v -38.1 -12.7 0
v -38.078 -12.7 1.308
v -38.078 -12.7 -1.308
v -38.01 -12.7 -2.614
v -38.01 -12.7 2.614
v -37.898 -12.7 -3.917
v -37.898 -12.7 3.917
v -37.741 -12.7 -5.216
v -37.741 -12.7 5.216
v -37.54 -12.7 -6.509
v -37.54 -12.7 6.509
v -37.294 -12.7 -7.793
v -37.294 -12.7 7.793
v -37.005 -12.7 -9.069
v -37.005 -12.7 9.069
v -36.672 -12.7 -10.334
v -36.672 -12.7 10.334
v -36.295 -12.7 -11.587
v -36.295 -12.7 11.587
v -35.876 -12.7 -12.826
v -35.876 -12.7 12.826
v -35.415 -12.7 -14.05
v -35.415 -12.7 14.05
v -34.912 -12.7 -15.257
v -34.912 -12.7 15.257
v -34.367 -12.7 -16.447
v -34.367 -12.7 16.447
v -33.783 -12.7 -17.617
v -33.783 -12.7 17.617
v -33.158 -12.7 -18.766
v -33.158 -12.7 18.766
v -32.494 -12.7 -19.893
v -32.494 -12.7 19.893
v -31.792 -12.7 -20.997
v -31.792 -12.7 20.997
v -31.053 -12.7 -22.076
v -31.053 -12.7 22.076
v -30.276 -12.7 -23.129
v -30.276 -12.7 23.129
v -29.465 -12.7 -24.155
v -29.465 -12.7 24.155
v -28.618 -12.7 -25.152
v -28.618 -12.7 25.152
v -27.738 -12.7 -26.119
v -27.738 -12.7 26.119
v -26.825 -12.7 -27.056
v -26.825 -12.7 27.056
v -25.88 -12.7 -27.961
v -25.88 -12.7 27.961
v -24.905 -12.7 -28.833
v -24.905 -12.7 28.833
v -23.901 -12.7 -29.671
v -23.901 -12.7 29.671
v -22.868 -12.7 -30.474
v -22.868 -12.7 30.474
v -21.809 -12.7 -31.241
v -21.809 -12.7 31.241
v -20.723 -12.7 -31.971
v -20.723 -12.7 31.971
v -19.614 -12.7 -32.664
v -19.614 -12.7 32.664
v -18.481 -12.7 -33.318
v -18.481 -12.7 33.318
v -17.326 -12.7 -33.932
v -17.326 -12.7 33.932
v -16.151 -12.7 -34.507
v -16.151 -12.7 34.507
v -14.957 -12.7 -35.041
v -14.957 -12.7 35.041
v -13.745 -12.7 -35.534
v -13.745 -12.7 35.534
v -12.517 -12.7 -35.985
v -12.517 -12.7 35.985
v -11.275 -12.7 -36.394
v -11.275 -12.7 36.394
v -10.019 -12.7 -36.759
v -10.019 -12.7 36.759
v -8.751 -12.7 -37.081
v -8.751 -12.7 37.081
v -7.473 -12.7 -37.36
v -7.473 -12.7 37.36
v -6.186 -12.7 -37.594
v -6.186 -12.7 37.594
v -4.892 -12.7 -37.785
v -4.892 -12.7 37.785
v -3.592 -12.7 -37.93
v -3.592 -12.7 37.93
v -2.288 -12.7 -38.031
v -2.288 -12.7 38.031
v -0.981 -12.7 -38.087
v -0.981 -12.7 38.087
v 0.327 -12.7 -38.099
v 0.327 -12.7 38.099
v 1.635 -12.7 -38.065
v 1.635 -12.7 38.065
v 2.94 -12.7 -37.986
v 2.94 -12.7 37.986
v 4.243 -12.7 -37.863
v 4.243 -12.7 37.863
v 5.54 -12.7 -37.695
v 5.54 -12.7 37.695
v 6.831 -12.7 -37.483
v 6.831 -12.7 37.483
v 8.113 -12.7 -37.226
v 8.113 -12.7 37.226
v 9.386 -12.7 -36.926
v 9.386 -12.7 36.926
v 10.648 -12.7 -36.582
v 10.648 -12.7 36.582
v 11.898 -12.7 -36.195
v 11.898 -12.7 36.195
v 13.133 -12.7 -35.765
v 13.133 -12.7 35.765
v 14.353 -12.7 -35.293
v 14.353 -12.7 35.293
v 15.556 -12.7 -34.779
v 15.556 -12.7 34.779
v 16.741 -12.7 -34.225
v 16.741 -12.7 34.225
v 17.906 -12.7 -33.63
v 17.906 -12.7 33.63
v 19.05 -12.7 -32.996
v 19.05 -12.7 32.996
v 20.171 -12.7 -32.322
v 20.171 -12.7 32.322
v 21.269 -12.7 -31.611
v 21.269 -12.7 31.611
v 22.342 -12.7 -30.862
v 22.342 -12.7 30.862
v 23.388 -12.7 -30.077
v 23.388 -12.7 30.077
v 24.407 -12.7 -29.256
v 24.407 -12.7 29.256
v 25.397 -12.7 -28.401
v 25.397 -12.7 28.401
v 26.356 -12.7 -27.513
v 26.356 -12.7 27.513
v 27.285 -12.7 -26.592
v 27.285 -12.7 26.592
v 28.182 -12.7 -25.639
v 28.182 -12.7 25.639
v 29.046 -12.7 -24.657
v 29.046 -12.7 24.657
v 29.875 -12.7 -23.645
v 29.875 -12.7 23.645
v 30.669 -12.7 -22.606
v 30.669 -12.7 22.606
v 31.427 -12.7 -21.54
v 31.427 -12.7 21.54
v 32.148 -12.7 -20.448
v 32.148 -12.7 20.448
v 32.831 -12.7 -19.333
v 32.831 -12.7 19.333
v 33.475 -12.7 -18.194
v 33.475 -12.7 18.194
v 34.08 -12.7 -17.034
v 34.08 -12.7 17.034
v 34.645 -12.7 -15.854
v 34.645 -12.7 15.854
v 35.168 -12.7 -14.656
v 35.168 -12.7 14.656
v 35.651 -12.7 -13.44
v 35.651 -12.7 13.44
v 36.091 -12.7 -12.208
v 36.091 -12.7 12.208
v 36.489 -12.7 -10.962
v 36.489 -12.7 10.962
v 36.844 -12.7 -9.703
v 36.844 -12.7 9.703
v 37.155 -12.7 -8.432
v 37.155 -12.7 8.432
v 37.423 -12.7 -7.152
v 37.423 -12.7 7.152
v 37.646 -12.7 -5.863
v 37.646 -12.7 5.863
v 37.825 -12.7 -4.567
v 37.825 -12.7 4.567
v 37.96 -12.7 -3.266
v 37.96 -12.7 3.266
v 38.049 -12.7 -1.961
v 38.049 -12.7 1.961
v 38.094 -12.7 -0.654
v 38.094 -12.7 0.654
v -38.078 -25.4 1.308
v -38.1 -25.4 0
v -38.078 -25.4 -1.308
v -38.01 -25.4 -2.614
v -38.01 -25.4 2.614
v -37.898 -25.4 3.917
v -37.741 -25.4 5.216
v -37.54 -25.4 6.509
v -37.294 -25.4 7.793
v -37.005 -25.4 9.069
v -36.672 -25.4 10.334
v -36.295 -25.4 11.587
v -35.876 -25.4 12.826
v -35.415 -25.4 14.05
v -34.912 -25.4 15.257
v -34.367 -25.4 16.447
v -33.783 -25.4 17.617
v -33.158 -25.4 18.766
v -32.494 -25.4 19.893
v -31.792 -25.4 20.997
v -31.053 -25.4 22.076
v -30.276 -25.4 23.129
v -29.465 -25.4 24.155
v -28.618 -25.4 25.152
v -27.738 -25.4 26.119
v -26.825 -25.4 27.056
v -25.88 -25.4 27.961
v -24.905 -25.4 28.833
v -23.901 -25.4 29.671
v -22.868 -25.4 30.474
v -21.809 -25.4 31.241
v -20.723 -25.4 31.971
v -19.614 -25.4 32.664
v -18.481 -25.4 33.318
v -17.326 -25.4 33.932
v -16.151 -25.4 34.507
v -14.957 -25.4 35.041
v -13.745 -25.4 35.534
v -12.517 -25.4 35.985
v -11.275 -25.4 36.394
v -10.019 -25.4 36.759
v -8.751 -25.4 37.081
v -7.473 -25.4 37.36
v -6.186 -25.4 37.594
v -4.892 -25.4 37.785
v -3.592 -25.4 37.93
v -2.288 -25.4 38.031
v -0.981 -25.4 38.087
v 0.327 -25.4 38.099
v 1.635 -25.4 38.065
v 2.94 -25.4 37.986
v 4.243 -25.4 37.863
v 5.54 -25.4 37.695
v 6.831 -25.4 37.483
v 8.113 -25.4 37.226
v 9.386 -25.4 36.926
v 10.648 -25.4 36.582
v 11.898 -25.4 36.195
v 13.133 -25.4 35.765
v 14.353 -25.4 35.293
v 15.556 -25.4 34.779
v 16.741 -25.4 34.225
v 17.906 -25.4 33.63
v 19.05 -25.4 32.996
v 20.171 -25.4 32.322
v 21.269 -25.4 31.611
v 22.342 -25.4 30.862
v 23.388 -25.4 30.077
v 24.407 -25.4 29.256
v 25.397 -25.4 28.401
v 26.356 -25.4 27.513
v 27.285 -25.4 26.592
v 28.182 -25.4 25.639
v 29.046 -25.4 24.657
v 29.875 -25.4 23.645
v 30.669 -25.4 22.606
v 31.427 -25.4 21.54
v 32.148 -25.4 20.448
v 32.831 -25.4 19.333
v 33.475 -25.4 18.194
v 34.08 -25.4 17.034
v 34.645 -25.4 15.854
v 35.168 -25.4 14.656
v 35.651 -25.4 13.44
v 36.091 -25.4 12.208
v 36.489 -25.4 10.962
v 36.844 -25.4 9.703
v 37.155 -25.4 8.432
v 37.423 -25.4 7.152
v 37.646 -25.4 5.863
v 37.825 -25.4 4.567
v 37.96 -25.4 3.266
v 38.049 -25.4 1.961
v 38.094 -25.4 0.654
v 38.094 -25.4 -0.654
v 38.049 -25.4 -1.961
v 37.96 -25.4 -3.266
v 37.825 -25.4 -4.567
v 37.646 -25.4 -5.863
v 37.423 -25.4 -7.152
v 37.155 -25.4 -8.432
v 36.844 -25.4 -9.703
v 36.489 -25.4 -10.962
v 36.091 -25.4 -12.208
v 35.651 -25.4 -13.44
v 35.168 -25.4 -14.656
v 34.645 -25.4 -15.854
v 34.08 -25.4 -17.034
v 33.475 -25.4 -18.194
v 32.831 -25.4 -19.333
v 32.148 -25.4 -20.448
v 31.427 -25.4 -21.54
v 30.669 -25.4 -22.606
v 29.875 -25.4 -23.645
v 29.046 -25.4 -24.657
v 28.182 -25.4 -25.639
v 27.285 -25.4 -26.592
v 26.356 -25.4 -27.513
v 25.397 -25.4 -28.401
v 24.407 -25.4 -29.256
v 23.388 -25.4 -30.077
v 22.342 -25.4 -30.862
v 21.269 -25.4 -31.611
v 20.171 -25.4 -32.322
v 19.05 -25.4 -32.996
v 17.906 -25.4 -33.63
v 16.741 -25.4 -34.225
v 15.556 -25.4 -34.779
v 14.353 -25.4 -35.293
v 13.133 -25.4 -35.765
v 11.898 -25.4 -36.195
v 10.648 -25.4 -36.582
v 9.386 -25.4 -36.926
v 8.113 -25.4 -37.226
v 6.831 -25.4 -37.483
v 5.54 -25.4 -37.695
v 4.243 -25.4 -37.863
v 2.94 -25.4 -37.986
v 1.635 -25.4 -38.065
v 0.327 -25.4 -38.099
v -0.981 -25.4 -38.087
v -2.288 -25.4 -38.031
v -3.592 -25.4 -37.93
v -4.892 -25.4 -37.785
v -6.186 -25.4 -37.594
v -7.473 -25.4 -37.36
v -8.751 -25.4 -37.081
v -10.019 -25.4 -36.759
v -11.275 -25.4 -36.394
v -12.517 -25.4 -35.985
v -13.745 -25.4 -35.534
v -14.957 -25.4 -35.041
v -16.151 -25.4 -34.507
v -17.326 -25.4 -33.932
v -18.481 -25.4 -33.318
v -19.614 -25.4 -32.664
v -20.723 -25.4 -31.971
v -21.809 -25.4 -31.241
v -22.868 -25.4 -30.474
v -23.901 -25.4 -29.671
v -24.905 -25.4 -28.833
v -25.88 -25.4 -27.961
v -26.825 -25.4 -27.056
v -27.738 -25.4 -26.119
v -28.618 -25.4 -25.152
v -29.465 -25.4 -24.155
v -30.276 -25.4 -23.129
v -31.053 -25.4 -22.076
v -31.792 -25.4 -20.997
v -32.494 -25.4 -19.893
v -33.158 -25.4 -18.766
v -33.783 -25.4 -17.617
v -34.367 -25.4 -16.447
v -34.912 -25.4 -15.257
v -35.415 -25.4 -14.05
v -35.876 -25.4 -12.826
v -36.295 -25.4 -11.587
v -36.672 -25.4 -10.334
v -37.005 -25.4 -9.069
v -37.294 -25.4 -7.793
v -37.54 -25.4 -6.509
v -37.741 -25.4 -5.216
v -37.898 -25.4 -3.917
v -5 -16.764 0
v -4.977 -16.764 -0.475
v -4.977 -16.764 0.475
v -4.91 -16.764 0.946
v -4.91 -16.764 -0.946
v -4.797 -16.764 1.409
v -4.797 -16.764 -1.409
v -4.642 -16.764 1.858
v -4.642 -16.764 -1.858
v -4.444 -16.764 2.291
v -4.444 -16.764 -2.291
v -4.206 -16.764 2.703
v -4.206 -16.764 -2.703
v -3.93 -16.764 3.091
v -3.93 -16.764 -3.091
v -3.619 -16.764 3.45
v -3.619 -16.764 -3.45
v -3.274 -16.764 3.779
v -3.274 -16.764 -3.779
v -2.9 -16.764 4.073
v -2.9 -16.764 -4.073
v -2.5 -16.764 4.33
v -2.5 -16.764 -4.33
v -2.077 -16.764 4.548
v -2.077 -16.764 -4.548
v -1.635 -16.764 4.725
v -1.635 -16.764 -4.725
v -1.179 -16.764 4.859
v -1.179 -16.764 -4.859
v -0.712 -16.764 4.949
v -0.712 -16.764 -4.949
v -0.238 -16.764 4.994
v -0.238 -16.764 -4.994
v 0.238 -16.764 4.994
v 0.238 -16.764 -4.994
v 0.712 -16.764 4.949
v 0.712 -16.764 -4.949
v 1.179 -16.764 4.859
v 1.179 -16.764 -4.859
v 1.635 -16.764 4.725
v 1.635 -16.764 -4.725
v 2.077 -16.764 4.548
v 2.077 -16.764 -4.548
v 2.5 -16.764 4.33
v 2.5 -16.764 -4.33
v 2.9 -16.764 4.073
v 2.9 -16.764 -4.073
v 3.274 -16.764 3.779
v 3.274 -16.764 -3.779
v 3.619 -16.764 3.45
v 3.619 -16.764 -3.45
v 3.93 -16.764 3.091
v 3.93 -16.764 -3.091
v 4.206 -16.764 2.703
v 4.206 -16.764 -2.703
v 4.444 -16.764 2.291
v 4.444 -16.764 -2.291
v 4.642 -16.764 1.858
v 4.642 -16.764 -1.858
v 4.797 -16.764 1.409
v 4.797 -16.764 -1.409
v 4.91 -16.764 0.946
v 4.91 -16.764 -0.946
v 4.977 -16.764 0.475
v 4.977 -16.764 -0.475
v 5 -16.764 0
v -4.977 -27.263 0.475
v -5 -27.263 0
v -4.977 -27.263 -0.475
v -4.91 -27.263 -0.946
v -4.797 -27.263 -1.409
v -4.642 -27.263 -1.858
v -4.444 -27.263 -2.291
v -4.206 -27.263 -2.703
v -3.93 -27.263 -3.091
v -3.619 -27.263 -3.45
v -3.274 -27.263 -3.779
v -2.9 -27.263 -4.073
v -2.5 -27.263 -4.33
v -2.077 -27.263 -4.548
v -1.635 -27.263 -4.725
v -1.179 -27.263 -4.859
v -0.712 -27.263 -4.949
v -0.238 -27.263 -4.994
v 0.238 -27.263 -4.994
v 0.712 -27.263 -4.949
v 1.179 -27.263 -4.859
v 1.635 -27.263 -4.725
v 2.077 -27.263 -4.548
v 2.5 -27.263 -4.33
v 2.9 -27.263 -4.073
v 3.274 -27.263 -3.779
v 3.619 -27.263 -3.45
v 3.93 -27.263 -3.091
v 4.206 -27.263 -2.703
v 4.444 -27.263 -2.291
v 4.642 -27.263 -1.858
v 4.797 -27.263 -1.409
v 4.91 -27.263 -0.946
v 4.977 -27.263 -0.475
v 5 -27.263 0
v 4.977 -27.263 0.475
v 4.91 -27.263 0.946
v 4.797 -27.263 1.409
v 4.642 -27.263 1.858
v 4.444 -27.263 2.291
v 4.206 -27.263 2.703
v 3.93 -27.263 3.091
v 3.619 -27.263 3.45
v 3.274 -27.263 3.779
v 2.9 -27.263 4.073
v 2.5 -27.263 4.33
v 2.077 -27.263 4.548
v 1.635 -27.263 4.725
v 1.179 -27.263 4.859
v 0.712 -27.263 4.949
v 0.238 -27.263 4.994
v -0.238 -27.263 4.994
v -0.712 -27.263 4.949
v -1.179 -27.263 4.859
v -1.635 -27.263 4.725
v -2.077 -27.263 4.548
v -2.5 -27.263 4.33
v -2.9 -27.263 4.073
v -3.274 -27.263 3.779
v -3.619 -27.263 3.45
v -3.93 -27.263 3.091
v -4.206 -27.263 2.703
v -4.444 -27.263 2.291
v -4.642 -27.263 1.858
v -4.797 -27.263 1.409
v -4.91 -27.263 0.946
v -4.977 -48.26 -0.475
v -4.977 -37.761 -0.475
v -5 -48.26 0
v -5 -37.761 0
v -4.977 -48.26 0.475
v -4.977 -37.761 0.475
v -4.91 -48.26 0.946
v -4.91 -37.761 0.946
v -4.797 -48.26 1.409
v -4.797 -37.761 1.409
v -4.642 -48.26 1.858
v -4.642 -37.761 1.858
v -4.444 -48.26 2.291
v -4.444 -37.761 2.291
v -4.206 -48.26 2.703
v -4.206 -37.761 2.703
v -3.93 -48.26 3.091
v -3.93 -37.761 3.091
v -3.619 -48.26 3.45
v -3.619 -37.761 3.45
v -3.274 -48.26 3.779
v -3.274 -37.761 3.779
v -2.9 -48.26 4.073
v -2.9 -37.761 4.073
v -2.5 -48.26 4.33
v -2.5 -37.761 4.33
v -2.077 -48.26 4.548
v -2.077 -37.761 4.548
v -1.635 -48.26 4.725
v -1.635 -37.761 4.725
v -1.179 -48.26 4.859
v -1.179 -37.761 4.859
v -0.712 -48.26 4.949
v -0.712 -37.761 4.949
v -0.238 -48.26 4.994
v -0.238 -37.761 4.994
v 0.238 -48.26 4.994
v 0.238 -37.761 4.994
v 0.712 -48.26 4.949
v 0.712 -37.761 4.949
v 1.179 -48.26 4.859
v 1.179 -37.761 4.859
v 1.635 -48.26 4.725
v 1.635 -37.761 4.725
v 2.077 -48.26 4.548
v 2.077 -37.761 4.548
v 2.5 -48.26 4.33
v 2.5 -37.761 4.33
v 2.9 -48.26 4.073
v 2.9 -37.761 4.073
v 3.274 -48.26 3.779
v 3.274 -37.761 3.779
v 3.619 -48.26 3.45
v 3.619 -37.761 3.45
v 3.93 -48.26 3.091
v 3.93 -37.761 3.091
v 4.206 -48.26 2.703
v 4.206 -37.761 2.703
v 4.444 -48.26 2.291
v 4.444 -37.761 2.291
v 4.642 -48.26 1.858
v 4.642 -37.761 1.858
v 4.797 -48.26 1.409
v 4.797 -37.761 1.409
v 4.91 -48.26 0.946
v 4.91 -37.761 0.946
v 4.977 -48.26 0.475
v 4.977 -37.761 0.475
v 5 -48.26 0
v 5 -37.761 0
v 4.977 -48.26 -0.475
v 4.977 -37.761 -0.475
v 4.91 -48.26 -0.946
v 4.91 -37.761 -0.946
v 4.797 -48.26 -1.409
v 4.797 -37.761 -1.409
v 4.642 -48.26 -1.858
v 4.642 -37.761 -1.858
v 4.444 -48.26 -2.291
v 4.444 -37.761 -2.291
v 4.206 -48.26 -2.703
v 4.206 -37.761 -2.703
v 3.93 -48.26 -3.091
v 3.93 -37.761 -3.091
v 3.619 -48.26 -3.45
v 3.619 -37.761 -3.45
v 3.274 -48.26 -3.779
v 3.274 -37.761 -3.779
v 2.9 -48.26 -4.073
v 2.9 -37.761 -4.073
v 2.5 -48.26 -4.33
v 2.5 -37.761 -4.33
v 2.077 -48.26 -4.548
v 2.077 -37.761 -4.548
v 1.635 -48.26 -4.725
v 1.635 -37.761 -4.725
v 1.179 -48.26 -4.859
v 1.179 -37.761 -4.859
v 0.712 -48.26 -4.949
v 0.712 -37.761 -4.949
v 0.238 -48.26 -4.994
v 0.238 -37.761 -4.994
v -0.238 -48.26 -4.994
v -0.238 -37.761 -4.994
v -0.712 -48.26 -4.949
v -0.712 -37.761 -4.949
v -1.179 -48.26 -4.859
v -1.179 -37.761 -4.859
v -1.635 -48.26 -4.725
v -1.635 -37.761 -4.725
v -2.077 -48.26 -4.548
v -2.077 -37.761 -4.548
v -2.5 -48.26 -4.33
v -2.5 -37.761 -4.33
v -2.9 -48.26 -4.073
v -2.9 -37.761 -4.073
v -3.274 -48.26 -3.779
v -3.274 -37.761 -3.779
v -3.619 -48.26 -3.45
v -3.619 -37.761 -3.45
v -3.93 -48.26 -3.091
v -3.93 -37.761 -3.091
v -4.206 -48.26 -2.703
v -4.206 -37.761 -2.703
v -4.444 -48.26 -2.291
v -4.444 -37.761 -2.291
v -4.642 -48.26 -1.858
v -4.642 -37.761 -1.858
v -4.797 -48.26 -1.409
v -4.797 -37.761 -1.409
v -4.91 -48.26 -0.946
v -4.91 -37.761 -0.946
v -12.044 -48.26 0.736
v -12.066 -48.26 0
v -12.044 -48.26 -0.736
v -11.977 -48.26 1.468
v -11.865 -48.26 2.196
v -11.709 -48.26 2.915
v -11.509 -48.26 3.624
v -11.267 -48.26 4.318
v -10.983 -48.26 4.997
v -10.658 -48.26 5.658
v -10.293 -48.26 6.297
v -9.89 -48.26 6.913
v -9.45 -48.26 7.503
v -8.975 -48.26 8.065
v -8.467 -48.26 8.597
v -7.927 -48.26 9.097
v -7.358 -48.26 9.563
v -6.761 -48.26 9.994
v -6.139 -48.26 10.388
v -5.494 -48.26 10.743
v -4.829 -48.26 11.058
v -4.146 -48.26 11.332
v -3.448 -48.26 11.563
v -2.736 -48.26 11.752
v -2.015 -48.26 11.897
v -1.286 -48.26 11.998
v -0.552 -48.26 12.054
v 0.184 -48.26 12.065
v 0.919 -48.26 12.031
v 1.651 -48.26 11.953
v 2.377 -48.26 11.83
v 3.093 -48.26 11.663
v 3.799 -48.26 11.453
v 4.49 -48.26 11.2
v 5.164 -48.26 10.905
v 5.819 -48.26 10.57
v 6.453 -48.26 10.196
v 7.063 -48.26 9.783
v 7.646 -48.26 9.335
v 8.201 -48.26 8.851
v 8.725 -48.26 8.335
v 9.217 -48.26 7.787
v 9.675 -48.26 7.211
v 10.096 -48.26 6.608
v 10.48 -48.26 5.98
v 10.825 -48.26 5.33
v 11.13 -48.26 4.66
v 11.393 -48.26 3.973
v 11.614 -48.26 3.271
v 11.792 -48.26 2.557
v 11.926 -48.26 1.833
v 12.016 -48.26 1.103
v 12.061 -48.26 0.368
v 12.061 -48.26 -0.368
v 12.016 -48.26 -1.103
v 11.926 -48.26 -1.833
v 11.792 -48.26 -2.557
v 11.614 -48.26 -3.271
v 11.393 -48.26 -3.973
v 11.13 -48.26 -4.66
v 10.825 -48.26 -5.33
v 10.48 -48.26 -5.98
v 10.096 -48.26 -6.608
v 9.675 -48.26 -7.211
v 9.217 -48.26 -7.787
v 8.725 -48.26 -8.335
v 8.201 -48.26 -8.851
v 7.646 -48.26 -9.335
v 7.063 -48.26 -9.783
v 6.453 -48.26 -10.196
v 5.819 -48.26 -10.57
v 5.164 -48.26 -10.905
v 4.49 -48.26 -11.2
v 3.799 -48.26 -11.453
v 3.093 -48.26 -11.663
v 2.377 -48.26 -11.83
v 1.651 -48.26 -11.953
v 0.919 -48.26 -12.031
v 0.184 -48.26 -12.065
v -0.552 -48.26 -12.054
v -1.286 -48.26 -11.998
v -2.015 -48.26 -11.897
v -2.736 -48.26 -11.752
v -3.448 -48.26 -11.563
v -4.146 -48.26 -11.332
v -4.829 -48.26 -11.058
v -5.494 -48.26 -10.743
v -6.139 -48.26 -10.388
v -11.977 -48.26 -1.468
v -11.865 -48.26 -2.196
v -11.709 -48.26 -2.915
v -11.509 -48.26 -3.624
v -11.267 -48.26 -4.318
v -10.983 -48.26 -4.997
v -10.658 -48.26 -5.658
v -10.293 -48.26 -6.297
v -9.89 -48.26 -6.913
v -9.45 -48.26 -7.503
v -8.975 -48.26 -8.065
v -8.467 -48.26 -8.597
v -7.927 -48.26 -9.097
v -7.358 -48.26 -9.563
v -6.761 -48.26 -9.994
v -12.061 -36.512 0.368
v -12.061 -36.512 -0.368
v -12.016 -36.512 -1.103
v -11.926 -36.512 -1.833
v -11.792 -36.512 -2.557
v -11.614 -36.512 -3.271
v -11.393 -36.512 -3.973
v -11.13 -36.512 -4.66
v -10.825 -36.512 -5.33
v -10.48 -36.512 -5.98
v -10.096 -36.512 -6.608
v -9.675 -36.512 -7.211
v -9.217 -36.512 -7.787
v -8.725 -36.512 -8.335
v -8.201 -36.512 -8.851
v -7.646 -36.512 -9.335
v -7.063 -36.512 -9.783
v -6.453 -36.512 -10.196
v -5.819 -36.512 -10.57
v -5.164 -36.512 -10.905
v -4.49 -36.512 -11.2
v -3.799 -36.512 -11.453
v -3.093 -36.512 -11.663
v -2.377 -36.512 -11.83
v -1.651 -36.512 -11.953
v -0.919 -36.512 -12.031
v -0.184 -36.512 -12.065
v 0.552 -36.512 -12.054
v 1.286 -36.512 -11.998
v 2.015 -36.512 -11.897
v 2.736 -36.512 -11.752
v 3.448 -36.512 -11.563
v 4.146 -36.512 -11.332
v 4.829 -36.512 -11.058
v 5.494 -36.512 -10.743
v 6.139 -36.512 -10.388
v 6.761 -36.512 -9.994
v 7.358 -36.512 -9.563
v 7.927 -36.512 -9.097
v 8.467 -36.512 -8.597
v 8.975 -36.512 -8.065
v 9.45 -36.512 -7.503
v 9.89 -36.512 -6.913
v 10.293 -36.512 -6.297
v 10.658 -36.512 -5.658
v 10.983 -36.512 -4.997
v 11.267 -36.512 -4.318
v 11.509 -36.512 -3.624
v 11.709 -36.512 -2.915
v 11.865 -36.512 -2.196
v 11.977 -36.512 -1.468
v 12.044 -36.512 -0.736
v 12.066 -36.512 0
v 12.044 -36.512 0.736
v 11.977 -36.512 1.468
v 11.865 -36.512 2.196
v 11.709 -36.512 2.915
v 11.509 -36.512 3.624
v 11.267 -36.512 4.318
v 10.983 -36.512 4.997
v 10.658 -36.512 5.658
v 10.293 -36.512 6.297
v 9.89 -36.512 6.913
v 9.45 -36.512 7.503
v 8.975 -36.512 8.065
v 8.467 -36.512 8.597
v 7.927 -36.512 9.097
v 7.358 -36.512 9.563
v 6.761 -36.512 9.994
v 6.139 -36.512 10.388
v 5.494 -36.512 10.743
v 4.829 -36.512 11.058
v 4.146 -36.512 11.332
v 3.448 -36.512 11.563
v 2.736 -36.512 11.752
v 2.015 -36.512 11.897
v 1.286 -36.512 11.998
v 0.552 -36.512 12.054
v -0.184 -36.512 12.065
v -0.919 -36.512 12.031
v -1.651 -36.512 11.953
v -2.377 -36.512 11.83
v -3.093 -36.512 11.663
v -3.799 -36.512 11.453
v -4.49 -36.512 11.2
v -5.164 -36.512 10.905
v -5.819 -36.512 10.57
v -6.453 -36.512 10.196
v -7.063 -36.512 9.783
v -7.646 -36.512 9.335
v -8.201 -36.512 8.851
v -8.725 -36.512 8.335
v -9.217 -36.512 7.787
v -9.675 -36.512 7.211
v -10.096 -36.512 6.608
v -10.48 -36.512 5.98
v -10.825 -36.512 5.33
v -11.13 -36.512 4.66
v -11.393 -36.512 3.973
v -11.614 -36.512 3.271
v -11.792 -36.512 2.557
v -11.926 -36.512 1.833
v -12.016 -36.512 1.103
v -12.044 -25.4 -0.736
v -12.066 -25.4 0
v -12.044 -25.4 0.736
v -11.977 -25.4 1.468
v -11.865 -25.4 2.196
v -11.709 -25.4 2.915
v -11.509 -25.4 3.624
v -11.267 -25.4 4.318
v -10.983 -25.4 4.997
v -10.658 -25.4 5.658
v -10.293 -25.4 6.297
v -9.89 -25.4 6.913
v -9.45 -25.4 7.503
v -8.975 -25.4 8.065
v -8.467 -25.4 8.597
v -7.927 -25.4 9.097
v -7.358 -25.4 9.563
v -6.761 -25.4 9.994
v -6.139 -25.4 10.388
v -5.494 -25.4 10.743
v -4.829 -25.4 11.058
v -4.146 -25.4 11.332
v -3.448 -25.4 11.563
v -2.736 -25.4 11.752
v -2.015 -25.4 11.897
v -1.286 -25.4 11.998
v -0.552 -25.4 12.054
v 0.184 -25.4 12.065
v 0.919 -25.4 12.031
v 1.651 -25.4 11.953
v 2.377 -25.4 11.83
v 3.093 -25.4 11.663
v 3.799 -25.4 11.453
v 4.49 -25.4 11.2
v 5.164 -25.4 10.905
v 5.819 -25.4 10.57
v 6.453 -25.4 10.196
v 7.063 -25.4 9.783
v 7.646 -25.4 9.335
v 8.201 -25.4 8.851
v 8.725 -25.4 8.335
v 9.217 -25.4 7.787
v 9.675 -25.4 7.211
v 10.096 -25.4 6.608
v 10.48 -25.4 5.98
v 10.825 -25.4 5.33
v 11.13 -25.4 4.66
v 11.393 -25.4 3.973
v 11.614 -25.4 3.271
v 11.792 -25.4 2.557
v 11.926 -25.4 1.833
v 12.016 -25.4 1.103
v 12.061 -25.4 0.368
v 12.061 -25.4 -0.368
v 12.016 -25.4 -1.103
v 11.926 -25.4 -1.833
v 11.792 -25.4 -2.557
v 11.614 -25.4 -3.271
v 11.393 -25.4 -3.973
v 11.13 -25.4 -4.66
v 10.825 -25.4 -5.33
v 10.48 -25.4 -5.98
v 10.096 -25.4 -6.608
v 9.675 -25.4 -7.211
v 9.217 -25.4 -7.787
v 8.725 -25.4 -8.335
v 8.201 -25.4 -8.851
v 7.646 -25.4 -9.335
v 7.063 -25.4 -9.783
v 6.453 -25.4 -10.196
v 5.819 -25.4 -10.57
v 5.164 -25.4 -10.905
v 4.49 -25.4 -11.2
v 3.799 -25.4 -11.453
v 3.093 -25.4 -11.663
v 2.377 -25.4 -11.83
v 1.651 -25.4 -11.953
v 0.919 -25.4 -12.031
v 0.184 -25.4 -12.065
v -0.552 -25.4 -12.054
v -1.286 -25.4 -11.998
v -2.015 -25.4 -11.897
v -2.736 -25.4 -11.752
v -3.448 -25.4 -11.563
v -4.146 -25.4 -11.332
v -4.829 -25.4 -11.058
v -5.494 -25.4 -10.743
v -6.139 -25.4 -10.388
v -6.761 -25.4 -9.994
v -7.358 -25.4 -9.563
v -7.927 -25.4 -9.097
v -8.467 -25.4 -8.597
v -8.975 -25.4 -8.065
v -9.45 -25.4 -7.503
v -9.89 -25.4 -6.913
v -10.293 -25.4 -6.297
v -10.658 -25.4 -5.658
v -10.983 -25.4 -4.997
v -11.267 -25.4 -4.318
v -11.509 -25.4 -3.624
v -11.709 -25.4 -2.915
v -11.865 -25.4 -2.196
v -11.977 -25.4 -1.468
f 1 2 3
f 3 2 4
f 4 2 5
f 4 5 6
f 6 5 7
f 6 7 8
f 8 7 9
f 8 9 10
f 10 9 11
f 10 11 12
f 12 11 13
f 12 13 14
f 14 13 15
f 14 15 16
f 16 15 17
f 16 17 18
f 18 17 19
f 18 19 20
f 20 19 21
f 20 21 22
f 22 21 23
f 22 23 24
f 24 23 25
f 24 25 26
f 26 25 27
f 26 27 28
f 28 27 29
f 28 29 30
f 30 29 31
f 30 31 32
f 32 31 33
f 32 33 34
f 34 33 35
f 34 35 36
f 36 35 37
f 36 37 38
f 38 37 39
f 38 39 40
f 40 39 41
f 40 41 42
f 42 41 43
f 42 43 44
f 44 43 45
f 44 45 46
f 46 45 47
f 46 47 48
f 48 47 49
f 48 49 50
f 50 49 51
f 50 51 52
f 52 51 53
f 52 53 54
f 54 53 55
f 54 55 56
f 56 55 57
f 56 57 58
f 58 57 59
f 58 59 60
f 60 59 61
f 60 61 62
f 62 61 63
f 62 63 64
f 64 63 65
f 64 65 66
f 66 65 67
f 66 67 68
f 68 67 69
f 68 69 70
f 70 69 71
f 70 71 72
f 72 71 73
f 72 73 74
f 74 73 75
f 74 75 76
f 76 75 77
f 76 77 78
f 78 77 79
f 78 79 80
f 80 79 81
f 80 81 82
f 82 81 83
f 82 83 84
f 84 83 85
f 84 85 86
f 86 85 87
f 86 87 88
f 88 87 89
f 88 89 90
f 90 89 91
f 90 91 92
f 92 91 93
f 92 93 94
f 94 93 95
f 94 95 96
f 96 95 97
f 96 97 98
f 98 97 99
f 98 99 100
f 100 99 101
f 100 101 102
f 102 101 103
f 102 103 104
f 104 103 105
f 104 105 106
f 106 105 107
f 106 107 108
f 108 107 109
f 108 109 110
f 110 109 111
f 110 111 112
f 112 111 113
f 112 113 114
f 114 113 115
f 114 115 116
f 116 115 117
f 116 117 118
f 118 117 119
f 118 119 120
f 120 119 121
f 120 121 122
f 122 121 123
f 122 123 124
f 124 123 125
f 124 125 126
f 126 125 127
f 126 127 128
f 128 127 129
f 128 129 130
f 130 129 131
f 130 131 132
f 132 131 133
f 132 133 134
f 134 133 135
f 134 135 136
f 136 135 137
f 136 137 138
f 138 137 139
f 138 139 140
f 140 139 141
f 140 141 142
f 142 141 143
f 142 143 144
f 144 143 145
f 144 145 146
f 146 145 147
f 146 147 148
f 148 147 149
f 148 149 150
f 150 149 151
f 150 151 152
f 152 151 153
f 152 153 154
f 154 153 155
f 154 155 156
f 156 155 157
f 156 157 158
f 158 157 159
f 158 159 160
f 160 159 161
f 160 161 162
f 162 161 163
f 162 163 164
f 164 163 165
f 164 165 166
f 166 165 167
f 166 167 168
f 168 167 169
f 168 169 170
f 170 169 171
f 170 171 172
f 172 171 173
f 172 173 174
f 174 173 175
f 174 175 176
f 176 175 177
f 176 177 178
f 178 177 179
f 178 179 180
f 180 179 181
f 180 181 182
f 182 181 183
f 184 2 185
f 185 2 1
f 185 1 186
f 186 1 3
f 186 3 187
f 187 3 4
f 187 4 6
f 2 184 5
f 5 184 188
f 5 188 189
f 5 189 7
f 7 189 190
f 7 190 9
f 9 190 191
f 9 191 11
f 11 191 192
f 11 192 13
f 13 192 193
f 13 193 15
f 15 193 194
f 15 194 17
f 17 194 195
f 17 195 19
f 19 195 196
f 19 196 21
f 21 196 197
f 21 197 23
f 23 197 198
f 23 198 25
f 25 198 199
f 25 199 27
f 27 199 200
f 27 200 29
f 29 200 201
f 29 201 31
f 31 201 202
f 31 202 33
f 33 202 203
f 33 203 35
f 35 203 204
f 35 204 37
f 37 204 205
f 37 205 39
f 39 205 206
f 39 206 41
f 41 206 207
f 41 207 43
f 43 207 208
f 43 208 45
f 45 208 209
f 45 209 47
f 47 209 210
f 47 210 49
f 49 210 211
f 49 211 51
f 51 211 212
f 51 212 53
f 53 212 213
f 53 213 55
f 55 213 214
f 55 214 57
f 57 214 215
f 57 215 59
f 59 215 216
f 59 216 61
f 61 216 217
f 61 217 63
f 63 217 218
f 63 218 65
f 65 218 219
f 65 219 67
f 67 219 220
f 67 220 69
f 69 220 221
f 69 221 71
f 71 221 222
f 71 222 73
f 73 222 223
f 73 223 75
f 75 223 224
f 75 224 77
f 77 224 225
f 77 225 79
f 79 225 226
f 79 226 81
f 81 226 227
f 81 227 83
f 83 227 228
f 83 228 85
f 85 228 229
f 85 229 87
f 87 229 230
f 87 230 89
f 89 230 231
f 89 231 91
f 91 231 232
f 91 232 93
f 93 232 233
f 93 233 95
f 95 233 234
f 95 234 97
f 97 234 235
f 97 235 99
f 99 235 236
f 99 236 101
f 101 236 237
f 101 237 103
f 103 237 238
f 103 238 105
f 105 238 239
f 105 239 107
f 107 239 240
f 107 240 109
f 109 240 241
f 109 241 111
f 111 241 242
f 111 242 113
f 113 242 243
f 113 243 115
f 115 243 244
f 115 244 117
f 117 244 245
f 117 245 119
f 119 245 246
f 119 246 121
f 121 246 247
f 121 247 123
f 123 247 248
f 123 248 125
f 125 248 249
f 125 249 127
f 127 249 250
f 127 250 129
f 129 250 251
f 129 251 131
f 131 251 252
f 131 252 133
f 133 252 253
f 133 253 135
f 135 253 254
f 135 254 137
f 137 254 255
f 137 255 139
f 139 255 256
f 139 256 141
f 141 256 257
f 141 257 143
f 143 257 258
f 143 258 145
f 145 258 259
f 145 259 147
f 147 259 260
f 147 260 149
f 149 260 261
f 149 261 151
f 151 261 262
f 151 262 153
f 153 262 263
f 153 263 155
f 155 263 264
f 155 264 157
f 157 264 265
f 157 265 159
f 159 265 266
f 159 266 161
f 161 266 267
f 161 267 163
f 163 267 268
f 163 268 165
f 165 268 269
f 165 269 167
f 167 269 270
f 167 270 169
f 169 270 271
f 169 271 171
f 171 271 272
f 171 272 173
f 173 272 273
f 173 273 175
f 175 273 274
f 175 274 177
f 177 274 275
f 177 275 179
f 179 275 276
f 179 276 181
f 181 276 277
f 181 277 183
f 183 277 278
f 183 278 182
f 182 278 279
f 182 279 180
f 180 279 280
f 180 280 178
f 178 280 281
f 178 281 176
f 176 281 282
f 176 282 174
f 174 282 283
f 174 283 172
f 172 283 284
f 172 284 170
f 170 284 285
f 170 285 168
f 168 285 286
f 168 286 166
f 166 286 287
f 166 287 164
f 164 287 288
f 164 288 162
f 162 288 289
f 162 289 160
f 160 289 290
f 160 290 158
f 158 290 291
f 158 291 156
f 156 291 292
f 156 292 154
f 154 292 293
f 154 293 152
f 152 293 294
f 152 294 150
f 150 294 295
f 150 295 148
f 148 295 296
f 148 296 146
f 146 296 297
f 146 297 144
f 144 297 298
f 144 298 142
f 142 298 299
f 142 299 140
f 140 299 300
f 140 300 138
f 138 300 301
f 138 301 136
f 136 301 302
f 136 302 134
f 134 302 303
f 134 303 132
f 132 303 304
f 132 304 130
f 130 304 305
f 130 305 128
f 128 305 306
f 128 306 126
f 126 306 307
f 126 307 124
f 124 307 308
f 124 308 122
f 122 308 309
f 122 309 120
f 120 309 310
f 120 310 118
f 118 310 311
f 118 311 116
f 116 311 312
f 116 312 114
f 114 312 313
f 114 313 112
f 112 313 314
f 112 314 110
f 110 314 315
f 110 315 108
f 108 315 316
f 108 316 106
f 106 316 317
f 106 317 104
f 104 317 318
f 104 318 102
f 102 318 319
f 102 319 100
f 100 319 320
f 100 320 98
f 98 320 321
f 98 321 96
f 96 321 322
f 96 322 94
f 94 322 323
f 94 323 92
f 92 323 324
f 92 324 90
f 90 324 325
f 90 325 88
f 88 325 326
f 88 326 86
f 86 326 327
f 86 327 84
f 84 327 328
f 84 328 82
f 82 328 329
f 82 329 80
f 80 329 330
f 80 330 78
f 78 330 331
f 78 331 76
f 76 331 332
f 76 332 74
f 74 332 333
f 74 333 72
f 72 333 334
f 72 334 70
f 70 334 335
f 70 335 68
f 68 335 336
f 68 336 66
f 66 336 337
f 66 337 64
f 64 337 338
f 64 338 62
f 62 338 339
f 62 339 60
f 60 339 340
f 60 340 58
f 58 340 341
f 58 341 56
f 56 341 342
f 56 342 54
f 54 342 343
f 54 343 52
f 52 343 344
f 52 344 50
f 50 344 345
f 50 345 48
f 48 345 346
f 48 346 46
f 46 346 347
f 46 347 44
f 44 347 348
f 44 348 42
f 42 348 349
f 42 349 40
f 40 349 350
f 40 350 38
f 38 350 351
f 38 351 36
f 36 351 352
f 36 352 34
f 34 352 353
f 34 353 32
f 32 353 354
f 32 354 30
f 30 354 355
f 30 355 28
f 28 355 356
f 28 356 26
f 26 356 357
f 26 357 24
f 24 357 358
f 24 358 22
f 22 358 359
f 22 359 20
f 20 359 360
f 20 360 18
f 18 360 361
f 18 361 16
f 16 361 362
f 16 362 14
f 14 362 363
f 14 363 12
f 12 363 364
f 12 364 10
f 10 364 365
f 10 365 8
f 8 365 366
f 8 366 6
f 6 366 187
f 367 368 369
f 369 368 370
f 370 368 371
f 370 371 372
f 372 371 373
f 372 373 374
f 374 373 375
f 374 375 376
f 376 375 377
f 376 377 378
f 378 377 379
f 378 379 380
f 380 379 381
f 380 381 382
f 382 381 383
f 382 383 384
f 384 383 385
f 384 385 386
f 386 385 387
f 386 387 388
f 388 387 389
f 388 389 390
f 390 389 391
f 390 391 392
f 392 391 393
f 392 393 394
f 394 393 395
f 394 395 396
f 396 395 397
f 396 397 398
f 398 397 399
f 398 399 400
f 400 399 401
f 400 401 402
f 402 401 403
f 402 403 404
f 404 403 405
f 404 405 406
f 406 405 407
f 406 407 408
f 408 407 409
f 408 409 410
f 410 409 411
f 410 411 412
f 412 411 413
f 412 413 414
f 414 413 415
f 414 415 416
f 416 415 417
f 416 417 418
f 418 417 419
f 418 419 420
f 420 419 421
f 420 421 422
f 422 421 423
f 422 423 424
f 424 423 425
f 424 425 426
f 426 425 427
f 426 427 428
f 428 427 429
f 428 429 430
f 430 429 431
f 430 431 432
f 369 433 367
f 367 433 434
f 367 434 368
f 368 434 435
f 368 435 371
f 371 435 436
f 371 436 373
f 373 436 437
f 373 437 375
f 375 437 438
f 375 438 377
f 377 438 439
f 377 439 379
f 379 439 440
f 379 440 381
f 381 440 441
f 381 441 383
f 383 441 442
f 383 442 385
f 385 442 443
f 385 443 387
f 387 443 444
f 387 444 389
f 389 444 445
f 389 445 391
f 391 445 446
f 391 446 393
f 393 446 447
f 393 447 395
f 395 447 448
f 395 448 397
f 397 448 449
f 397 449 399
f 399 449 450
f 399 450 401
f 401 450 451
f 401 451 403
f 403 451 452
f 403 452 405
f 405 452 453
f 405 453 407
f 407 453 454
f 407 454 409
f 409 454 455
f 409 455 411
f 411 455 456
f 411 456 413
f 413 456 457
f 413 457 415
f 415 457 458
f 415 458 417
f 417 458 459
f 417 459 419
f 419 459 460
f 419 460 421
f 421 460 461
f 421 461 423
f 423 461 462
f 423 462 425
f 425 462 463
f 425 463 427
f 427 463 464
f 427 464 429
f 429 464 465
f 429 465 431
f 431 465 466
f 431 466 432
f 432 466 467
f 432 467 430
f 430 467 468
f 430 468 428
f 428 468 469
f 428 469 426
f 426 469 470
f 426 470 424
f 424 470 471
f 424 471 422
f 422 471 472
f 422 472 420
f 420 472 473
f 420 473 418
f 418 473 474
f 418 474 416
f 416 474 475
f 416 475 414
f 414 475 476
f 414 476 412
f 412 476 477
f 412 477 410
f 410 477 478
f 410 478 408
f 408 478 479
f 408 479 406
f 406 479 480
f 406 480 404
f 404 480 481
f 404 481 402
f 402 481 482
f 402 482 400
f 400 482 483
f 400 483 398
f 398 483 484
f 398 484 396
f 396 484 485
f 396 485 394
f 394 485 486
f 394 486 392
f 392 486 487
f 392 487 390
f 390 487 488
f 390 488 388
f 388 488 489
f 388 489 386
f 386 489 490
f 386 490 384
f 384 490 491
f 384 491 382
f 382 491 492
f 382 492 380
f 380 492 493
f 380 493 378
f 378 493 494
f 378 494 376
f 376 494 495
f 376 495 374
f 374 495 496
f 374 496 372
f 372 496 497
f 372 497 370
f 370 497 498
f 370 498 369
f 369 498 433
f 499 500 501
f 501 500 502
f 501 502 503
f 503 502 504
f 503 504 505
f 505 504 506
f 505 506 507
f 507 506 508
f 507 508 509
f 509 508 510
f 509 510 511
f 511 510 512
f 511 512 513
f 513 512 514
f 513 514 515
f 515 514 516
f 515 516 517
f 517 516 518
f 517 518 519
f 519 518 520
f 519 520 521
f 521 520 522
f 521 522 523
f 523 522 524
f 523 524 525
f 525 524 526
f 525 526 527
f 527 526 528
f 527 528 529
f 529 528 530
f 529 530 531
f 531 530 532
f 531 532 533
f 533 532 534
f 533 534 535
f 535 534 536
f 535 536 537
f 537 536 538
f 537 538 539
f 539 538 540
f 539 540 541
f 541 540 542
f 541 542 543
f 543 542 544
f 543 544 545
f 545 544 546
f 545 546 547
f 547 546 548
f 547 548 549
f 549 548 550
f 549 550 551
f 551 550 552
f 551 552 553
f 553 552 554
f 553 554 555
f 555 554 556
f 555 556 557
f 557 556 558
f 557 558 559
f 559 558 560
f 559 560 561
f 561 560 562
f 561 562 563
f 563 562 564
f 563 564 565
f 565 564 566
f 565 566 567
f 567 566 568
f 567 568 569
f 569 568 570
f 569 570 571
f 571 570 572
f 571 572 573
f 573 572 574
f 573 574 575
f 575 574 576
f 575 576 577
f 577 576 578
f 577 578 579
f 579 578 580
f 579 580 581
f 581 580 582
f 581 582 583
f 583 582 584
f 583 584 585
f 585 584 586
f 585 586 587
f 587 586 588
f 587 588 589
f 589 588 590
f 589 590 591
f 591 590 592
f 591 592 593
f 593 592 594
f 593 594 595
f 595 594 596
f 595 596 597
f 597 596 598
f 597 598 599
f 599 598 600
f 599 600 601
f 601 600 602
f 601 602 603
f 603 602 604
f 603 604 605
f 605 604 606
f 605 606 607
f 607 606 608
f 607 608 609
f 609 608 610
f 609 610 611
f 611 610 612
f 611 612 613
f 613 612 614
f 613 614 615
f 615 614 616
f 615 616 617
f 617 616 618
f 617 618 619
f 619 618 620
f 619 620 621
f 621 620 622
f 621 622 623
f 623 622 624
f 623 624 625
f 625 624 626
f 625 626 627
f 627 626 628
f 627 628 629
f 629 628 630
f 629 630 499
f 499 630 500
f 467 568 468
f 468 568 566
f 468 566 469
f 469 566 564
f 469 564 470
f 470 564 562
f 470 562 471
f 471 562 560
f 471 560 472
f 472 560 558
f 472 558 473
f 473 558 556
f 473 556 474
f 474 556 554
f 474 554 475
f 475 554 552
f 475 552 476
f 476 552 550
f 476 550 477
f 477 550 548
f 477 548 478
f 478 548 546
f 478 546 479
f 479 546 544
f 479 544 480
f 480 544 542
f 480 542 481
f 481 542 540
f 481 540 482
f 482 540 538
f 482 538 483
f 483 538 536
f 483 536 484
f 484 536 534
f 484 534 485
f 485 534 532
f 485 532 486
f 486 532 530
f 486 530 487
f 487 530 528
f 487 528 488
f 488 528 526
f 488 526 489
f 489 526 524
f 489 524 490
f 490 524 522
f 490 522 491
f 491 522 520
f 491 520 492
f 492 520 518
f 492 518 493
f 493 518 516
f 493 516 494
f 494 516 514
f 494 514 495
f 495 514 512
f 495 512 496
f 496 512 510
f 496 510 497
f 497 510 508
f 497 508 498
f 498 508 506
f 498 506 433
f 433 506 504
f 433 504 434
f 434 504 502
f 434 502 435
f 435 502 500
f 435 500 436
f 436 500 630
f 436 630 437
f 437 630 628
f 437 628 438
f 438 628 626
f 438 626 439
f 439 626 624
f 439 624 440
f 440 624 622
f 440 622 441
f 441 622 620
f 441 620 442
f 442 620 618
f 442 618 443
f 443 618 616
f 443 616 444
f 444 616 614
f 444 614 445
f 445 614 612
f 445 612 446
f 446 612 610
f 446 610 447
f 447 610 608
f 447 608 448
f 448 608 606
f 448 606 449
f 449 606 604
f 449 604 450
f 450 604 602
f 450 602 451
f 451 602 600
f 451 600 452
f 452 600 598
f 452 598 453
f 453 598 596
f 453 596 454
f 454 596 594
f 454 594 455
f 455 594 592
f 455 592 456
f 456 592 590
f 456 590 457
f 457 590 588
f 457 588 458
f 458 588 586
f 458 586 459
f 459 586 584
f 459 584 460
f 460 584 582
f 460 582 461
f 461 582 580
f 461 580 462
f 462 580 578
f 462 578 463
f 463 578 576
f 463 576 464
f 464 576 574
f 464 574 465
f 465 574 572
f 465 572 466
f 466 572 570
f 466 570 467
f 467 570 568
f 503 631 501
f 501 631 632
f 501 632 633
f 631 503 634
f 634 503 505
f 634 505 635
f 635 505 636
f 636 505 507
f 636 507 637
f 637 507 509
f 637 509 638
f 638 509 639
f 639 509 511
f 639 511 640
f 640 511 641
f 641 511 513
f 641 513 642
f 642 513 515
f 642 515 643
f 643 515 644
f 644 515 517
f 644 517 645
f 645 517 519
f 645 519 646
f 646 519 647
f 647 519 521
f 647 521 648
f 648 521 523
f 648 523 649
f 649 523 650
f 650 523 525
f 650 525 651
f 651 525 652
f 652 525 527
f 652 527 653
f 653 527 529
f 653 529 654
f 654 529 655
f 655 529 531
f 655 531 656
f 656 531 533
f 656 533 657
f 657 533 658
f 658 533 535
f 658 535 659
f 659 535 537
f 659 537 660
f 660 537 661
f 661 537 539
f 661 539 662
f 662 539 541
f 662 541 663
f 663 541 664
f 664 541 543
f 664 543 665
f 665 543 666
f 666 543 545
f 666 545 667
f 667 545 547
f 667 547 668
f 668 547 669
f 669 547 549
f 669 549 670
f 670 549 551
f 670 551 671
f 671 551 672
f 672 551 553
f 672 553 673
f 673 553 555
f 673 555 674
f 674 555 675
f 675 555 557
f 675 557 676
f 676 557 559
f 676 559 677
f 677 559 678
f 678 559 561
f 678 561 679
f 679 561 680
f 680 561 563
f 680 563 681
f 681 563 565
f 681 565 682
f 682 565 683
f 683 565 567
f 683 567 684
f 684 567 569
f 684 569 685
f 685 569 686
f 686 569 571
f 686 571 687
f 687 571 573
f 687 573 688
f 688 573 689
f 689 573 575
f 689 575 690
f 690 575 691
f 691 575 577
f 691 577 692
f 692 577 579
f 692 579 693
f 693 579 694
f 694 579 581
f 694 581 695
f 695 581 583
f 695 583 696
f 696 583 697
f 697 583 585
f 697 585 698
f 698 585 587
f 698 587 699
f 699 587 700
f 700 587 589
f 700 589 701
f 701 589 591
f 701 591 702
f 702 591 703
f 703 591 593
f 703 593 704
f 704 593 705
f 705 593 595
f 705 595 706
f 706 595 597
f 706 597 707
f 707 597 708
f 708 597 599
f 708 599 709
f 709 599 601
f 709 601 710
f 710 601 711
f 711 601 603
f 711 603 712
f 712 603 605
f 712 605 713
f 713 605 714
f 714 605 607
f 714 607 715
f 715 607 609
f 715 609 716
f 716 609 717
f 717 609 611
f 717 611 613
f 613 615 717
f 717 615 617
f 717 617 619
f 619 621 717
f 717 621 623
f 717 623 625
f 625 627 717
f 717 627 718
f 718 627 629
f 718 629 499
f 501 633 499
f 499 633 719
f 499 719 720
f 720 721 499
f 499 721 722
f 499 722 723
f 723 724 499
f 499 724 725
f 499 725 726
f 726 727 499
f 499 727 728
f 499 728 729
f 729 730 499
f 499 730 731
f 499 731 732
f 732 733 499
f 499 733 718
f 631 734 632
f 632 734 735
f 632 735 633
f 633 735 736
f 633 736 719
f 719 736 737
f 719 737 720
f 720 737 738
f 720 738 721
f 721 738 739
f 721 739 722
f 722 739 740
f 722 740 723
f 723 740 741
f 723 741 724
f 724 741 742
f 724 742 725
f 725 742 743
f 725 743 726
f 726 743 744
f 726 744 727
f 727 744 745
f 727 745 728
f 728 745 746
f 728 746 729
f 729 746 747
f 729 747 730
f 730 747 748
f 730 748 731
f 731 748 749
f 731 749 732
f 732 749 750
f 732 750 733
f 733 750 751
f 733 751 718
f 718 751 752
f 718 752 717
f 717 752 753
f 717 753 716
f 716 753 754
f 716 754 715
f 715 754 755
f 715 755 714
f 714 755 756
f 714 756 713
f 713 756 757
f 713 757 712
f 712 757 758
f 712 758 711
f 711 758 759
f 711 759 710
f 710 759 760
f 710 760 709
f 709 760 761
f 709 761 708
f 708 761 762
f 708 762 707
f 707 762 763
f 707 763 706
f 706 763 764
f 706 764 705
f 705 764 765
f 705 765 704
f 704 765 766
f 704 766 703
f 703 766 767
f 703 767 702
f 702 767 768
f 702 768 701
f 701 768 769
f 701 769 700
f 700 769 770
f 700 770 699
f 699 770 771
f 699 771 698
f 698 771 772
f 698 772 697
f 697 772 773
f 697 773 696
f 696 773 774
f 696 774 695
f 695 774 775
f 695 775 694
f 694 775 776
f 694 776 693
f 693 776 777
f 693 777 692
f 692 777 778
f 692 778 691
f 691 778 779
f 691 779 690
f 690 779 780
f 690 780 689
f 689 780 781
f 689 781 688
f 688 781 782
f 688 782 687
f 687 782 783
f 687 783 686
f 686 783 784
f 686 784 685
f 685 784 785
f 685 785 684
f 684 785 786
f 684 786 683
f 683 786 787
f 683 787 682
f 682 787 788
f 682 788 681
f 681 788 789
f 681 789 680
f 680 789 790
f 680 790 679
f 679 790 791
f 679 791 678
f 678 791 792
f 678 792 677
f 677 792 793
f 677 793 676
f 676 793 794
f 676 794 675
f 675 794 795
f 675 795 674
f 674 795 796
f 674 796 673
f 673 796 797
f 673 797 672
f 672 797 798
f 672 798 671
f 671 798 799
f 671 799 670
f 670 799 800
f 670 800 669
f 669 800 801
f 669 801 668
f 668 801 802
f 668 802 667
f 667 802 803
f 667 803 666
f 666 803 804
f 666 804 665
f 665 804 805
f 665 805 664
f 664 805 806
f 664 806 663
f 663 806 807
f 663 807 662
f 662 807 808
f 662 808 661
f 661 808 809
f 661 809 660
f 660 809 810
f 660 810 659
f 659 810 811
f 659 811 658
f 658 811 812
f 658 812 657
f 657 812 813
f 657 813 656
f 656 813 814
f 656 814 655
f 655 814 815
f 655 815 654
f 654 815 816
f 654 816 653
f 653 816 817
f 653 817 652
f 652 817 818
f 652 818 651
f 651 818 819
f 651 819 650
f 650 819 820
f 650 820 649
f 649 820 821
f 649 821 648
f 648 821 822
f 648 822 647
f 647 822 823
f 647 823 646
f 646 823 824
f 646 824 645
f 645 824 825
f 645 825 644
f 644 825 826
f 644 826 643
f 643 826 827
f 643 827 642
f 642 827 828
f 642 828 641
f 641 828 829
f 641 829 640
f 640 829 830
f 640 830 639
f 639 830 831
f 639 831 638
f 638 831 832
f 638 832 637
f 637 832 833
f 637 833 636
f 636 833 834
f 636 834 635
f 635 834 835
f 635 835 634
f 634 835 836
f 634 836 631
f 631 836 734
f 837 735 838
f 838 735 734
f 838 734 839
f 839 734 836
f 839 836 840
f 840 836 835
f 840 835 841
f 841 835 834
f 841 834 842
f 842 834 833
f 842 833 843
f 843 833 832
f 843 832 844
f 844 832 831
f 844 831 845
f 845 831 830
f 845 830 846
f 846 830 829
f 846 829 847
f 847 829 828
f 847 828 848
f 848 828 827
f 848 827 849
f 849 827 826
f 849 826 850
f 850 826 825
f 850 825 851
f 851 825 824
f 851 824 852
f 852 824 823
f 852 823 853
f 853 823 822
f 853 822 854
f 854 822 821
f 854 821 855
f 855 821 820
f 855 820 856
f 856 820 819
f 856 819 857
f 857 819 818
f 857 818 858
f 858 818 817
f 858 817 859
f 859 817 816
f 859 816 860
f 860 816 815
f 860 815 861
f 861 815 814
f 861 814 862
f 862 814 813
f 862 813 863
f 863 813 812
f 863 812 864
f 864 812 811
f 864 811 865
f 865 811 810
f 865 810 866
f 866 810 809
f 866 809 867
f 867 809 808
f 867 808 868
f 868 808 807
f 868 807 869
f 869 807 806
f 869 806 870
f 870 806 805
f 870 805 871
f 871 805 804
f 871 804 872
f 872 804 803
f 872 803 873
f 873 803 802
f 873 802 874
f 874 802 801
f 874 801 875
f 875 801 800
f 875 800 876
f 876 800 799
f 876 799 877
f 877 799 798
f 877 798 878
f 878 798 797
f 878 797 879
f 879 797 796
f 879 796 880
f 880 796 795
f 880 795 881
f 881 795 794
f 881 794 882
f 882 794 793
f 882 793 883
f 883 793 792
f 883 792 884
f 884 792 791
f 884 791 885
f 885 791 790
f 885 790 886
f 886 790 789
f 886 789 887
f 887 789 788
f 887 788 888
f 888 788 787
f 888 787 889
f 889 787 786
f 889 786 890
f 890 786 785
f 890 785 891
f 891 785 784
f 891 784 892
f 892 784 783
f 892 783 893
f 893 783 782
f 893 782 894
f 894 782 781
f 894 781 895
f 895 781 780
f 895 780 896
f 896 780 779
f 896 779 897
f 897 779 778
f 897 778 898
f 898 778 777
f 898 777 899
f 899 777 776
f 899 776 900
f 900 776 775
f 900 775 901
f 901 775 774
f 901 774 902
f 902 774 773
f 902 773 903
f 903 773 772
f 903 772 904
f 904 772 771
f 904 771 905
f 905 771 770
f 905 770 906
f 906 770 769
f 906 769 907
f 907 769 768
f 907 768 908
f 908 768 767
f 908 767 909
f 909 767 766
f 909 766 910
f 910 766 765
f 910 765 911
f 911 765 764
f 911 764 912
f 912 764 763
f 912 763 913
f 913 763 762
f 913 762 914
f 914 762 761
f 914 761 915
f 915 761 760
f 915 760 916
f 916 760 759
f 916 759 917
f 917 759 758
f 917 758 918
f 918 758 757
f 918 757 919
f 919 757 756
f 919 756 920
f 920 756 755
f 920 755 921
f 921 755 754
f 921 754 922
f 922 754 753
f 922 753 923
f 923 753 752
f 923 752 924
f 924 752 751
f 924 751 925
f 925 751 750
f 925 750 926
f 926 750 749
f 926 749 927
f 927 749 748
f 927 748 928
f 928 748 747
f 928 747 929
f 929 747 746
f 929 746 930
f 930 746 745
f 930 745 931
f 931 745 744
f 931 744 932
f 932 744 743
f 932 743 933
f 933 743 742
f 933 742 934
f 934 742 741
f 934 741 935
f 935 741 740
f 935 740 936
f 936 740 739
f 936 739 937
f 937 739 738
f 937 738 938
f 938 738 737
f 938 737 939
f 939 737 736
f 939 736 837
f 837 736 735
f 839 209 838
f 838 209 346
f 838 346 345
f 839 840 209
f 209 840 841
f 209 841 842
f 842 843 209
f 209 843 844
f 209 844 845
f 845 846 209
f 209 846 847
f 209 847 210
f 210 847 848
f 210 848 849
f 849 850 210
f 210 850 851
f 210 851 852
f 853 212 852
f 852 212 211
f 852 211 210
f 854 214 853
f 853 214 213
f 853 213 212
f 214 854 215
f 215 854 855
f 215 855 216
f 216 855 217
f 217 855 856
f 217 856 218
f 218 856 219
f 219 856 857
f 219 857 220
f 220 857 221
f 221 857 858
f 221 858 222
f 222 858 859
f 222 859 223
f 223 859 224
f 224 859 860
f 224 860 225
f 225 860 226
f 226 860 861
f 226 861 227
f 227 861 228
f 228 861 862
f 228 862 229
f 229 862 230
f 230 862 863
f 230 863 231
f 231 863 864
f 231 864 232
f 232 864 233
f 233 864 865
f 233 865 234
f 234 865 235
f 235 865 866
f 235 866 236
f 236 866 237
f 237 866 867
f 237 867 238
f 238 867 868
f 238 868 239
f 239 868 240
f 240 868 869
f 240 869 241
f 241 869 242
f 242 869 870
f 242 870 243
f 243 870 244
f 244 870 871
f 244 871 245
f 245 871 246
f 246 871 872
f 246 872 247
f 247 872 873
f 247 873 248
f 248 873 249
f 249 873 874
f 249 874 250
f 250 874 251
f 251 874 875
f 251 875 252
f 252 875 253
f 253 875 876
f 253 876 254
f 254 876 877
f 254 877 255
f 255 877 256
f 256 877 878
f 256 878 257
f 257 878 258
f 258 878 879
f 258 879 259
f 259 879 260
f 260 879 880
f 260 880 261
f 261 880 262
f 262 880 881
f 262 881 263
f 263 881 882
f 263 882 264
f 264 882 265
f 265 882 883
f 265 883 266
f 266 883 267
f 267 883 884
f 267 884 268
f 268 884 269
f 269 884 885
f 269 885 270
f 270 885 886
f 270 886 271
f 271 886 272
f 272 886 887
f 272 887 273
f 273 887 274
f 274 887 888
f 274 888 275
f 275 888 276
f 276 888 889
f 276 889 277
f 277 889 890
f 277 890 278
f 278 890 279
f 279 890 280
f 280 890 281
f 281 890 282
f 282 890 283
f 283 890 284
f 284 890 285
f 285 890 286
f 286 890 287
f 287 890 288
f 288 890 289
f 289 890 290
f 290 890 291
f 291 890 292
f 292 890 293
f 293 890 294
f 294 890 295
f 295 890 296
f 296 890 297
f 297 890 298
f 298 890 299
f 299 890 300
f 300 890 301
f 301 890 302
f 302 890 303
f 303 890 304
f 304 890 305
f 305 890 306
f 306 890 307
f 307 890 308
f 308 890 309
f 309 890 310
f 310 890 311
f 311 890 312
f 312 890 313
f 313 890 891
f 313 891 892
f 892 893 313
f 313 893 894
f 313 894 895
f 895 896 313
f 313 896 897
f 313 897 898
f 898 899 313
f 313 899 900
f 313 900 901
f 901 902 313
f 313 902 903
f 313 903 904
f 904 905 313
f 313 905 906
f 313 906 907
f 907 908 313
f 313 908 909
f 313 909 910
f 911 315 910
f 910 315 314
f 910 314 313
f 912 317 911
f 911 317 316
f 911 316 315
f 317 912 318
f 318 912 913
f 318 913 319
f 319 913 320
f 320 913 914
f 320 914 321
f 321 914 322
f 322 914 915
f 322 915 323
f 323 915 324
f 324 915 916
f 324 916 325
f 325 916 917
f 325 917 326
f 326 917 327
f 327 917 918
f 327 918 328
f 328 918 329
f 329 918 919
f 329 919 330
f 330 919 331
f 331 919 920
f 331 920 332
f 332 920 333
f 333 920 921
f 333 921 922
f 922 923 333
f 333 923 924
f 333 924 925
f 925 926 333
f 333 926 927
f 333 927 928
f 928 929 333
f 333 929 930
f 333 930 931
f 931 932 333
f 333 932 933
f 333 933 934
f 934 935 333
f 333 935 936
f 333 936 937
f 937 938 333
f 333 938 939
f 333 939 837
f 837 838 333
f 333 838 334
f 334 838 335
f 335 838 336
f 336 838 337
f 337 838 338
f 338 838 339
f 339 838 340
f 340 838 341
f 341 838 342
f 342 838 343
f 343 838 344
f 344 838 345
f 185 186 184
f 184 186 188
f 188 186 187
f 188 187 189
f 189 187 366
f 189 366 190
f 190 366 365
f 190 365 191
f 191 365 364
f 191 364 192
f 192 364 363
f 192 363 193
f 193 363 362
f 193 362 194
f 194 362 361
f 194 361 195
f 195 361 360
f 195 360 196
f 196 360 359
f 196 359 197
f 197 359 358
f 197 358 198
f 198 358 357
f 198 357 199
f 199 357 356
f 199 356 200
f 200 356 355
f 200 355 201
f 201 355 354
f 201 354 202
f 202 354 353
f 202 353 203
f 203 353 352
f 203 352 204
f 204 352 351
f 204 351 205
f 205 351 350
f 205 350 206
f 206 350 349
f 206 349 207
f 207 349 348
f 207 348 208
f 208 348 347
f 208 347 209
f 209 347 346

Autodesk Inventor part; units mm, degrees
ref_plane "YZ Plane" through (0, 0, 0) normal (1, 0, 0) x (0, 1, 0)
ref_plane "XZ Plane" through (0, 0, 0) normal (0, 1, 0) x (-1, 0, 0)
ref_plane "XY Plane" through (0, 0, 0) normal (0, 0, 1) x (1, 0, 0)
sketch "Sketch1" plane through (0, 0, 0) normal (0, 0, 1) x (1, 0, 0)
  line L0 (0, 0) -> (-50.8, 0)
  line L1 (-50.8, 0) -> (-50.8, -12.7)
  line L2 (-50.8, -12.7) -> (-38.1, -12.7)
  line L3 (-12.0663, -25.4) -> (-12.0663, -48.26)
  line L4 (-5, -48.26) -> (-5, -16.764)
  line L5 (-5, -16.764) -> (0, -16.764)
  line L6 (0, -16.764) -> (0, 0)
  line L7 (-12.0663, -48.26) -> (-5, -48.26)
  line L8 (-38.1, -12.7) -> (-38.1, -25.4)
  line L9 (-38.1, -25.4) -> (-12.0663, -25.4)
  dimension "d0" = 50.8
  dimension "d1" = 5
  dimension "d2" = 12.0663
  dimension "d13" = 35.56
  dimension "d15" = 31.496
  dimension "d38" = 12.7
  dimension "d39" = 38.1
revolve "Revolution1" add sketch "Sketch1" angle 360 about axis through (0, -16.764, 0) along (0, 1, 0)
sketch "Sketch5" plane through (0, 0, 0) normal (0, 1, 0) x (1, 0, 0)
  circle A0 centre (0, 0) radius 5 projected
  line L0 (9.815, 0) -> (4.9075, -8.5)
  line L1 (4.9075, -8.5) -> (-4.9075, -8.5)
  line L2 (-4.9075, -8.5) -> (-9.815, 0)
  line L3 (-9.815, 0) -> (-4.9075, 8.5)
  line L4 (-4.9075, 8.5) -> (4.9075, 8.5)
  line L5 (4.9075, 8.5) -> (9.815, 0)
  point P0 (0, 0)
  point P1 (0, 0)
  dimension "d16" = 17
extrude "Extrusion1" cut sketch "Sketch5" against normal blind 12.7 contours A0 | L0 L1 L2 L3 L4 L5
sketch "Sketch7" plane through (0, -12.7, 0) normal (0, -1, 0) x (1, 0, 0)
  circle A0 centre (0, 0) radius 50.8 projected
  line L0 (47.0929, -19.05) -> (85.1929, -19.05)
  line L1 (85.1929, -19.05) -> (85.1929, -31.75)
  line L2 (85.1929, -31.75) -> (39.6557, -31.75)
  circle A1 centre (0, 0) radius 5 construction
  line L3 (0, 0) -> (5, 0) construction
  line L4 (50.8, 0) -> (83.823, 0) construction
  dimension "d23" = 38.1
  dimension "d24" = 12.7
  dimension "d25" = 19.05
extrude "Extrusion3" add sketch "Sketch7" against normal blind 12.7 contours A0 L0 L1 L2
sketch "Sketch8" plane through (39.6557, 0, -31.75) normal (0, 1, 0) x (1, 0, 0)
  line L0 (45.5371, -12.7) -> (45.5371, 0) projected
  line L1 (45.5371, 0) -> (0, 0) projected
  line L2 (7.4371, -12.7) -> (45.5371, -12.7) projected
  line L3 (35.8511, -107.95) -> (35.8511, 44.45)
  line L4 (26.3261, -107.95) -> (26.3261, 44.45)
  line L5 (45.5371, -12.7) -> (23.3121, -12.7)
  line L6 (23.3121, -12.7) -> (23.3121, 0)
  line L7 (23.3121, 0) -> (45.5371, 0)
  line L8 (45.5371, 0) -> (45.5371, -12.7)
  point P0 (-39.6557, -31.75)
  point P1 (23.3121, 0)
  point P2 (23.3121, -12.7)
  dimension "d28" = 22.225
extrude "Extrusion4" add sketch "Sketch8" along normal blind 19.05
sketch "Sketch9" plane through (85.1929, -12.7, -31.75) normal (0, 0, -1) x (-1, 0, 0)
  line L0 (22.225, 12.7) -> (22.225, 31.75) projected
  line L1 (0, 31.75) -> (22.225, 31.75) projected
  arc A0 (16.0423, 14.3621) -> (12.8546, 14.3621) centre (14.4485, 18.85) ccw projected
  line L2 (0, 0) -> (0, 31.75) projected
  circle A1 centre (14.4485, 18.85) radius 4.953
  point P0 (85.1929, 12.7)
  dimension "d31" = 9.906
extrude "Extrusion5" cut sketch "Sketch9" against normal through all
mirror "Mirror1" about plane through (0, 0, 0) normal (0, 0, 1) of "Extrusion4", "Extrusion5", "Extrusion3"
sketch "Sketch10" plane through (39.6557, -12.7, -31.75) normal (0, -1, 0) x (1, 0, 0)
  arc A0 (7.4371, 12.7) -> (7.4371, 50.8) centre (-39.6557, 31.75) ccw projected
  line L0 (45.5371, 50.8) -> (7.4371, 50.8) projected
  line L1 (45.5371, 12.7) -> (7.4371, 12.7) projected
  arc A1 (7.4371, 12.7) -> (7.4371, 50.8) centre (-39.6557, 31.75) ccw
  line L2 (7.4371, 50.8) -> (45.5371, 50.8)
  line L3 (45.5371, 0) -> (45.5371, 12.7) projected
  line L4 (45.5371, 50.8) -> (45.5371, 12.7)
  line L5 (45.5371, 12.7) -> (7.4371, 12.7)
extrude "Extrusion6" add sketch "Sketch10" against normal blind 6.35
sketch "Sketch11" plane through (85.1929, -12.7, -31.75) normal (1, 0, 0) x (0, 0, -1)
  line L0 (-63.5, 0) -> (-63.5, 31.75) projected
  line L1 (-50.8, 31.75) -> (-63.5, 31.75) projected
  line L2 (-12.7, 31.75) -> (0, 31.75) projected
  line L3 (0, 0) -> (0, 31.75) projected
  line L4 (0, 0) -> (-63.5, 0) projected
  line L5 (-63.5, 31.75) -> (0, 31.75)
  line L6 (0, 31.75) -> (0, 0)
  line L7 (0, 0) -> (-63.5, 0)
  line L8 (-63.5, 0) -> (-63.5, 31.75)
  point P0 (-31.75, 12.7)
  point P1 (-12.7, 31.75)
  point P2 (-50.8, 31.75)
extrude "Extrusion7" add sketch "Sketch11" along normal blind 6.35
sketch "Sketch12" plane through (39.6557, 19.05, -31.75) normal (0, 1, 0) x (1, 0, 0)
  point P0 (-39.6557, -31.75)
sketch "Sketch13" plane through (0, -12.7, 0) normal (0, -1, 0) x (1, 0, 0)
  circle A0 centre (0, 0) radius 5 projected
  line L0 (91.5429, -31.75) -> (91.5429, 31.75) projected
  circle A1 centre (0, 0) radius 96.8925
  point P0 (0, 0)
extrude "Extrusion8" cut sketch "Sketch13" against normal through all contours A1 L0 picked at (62.6952, 0)
equation "\"d0\" = topPartRadius"
equation "\"d2\" = stemRadius"
equation "\"d15\" = internalHoleDepth"
equation "\"topPartRadius\" = 0.5 * topPartDiameter"
equation "\"totalHeight\" = 35.56"
equation "\"stemRadius\" = 12.06627"
equation "\"stemHeight\" = 22.86"
equation "\"internalHoleDepth\" = 31.496"
equation "\"topPartDiameter\" = 101.6"
properties part number "celestronTripodAdapterBottom" material "PC/ABS Plastic"
